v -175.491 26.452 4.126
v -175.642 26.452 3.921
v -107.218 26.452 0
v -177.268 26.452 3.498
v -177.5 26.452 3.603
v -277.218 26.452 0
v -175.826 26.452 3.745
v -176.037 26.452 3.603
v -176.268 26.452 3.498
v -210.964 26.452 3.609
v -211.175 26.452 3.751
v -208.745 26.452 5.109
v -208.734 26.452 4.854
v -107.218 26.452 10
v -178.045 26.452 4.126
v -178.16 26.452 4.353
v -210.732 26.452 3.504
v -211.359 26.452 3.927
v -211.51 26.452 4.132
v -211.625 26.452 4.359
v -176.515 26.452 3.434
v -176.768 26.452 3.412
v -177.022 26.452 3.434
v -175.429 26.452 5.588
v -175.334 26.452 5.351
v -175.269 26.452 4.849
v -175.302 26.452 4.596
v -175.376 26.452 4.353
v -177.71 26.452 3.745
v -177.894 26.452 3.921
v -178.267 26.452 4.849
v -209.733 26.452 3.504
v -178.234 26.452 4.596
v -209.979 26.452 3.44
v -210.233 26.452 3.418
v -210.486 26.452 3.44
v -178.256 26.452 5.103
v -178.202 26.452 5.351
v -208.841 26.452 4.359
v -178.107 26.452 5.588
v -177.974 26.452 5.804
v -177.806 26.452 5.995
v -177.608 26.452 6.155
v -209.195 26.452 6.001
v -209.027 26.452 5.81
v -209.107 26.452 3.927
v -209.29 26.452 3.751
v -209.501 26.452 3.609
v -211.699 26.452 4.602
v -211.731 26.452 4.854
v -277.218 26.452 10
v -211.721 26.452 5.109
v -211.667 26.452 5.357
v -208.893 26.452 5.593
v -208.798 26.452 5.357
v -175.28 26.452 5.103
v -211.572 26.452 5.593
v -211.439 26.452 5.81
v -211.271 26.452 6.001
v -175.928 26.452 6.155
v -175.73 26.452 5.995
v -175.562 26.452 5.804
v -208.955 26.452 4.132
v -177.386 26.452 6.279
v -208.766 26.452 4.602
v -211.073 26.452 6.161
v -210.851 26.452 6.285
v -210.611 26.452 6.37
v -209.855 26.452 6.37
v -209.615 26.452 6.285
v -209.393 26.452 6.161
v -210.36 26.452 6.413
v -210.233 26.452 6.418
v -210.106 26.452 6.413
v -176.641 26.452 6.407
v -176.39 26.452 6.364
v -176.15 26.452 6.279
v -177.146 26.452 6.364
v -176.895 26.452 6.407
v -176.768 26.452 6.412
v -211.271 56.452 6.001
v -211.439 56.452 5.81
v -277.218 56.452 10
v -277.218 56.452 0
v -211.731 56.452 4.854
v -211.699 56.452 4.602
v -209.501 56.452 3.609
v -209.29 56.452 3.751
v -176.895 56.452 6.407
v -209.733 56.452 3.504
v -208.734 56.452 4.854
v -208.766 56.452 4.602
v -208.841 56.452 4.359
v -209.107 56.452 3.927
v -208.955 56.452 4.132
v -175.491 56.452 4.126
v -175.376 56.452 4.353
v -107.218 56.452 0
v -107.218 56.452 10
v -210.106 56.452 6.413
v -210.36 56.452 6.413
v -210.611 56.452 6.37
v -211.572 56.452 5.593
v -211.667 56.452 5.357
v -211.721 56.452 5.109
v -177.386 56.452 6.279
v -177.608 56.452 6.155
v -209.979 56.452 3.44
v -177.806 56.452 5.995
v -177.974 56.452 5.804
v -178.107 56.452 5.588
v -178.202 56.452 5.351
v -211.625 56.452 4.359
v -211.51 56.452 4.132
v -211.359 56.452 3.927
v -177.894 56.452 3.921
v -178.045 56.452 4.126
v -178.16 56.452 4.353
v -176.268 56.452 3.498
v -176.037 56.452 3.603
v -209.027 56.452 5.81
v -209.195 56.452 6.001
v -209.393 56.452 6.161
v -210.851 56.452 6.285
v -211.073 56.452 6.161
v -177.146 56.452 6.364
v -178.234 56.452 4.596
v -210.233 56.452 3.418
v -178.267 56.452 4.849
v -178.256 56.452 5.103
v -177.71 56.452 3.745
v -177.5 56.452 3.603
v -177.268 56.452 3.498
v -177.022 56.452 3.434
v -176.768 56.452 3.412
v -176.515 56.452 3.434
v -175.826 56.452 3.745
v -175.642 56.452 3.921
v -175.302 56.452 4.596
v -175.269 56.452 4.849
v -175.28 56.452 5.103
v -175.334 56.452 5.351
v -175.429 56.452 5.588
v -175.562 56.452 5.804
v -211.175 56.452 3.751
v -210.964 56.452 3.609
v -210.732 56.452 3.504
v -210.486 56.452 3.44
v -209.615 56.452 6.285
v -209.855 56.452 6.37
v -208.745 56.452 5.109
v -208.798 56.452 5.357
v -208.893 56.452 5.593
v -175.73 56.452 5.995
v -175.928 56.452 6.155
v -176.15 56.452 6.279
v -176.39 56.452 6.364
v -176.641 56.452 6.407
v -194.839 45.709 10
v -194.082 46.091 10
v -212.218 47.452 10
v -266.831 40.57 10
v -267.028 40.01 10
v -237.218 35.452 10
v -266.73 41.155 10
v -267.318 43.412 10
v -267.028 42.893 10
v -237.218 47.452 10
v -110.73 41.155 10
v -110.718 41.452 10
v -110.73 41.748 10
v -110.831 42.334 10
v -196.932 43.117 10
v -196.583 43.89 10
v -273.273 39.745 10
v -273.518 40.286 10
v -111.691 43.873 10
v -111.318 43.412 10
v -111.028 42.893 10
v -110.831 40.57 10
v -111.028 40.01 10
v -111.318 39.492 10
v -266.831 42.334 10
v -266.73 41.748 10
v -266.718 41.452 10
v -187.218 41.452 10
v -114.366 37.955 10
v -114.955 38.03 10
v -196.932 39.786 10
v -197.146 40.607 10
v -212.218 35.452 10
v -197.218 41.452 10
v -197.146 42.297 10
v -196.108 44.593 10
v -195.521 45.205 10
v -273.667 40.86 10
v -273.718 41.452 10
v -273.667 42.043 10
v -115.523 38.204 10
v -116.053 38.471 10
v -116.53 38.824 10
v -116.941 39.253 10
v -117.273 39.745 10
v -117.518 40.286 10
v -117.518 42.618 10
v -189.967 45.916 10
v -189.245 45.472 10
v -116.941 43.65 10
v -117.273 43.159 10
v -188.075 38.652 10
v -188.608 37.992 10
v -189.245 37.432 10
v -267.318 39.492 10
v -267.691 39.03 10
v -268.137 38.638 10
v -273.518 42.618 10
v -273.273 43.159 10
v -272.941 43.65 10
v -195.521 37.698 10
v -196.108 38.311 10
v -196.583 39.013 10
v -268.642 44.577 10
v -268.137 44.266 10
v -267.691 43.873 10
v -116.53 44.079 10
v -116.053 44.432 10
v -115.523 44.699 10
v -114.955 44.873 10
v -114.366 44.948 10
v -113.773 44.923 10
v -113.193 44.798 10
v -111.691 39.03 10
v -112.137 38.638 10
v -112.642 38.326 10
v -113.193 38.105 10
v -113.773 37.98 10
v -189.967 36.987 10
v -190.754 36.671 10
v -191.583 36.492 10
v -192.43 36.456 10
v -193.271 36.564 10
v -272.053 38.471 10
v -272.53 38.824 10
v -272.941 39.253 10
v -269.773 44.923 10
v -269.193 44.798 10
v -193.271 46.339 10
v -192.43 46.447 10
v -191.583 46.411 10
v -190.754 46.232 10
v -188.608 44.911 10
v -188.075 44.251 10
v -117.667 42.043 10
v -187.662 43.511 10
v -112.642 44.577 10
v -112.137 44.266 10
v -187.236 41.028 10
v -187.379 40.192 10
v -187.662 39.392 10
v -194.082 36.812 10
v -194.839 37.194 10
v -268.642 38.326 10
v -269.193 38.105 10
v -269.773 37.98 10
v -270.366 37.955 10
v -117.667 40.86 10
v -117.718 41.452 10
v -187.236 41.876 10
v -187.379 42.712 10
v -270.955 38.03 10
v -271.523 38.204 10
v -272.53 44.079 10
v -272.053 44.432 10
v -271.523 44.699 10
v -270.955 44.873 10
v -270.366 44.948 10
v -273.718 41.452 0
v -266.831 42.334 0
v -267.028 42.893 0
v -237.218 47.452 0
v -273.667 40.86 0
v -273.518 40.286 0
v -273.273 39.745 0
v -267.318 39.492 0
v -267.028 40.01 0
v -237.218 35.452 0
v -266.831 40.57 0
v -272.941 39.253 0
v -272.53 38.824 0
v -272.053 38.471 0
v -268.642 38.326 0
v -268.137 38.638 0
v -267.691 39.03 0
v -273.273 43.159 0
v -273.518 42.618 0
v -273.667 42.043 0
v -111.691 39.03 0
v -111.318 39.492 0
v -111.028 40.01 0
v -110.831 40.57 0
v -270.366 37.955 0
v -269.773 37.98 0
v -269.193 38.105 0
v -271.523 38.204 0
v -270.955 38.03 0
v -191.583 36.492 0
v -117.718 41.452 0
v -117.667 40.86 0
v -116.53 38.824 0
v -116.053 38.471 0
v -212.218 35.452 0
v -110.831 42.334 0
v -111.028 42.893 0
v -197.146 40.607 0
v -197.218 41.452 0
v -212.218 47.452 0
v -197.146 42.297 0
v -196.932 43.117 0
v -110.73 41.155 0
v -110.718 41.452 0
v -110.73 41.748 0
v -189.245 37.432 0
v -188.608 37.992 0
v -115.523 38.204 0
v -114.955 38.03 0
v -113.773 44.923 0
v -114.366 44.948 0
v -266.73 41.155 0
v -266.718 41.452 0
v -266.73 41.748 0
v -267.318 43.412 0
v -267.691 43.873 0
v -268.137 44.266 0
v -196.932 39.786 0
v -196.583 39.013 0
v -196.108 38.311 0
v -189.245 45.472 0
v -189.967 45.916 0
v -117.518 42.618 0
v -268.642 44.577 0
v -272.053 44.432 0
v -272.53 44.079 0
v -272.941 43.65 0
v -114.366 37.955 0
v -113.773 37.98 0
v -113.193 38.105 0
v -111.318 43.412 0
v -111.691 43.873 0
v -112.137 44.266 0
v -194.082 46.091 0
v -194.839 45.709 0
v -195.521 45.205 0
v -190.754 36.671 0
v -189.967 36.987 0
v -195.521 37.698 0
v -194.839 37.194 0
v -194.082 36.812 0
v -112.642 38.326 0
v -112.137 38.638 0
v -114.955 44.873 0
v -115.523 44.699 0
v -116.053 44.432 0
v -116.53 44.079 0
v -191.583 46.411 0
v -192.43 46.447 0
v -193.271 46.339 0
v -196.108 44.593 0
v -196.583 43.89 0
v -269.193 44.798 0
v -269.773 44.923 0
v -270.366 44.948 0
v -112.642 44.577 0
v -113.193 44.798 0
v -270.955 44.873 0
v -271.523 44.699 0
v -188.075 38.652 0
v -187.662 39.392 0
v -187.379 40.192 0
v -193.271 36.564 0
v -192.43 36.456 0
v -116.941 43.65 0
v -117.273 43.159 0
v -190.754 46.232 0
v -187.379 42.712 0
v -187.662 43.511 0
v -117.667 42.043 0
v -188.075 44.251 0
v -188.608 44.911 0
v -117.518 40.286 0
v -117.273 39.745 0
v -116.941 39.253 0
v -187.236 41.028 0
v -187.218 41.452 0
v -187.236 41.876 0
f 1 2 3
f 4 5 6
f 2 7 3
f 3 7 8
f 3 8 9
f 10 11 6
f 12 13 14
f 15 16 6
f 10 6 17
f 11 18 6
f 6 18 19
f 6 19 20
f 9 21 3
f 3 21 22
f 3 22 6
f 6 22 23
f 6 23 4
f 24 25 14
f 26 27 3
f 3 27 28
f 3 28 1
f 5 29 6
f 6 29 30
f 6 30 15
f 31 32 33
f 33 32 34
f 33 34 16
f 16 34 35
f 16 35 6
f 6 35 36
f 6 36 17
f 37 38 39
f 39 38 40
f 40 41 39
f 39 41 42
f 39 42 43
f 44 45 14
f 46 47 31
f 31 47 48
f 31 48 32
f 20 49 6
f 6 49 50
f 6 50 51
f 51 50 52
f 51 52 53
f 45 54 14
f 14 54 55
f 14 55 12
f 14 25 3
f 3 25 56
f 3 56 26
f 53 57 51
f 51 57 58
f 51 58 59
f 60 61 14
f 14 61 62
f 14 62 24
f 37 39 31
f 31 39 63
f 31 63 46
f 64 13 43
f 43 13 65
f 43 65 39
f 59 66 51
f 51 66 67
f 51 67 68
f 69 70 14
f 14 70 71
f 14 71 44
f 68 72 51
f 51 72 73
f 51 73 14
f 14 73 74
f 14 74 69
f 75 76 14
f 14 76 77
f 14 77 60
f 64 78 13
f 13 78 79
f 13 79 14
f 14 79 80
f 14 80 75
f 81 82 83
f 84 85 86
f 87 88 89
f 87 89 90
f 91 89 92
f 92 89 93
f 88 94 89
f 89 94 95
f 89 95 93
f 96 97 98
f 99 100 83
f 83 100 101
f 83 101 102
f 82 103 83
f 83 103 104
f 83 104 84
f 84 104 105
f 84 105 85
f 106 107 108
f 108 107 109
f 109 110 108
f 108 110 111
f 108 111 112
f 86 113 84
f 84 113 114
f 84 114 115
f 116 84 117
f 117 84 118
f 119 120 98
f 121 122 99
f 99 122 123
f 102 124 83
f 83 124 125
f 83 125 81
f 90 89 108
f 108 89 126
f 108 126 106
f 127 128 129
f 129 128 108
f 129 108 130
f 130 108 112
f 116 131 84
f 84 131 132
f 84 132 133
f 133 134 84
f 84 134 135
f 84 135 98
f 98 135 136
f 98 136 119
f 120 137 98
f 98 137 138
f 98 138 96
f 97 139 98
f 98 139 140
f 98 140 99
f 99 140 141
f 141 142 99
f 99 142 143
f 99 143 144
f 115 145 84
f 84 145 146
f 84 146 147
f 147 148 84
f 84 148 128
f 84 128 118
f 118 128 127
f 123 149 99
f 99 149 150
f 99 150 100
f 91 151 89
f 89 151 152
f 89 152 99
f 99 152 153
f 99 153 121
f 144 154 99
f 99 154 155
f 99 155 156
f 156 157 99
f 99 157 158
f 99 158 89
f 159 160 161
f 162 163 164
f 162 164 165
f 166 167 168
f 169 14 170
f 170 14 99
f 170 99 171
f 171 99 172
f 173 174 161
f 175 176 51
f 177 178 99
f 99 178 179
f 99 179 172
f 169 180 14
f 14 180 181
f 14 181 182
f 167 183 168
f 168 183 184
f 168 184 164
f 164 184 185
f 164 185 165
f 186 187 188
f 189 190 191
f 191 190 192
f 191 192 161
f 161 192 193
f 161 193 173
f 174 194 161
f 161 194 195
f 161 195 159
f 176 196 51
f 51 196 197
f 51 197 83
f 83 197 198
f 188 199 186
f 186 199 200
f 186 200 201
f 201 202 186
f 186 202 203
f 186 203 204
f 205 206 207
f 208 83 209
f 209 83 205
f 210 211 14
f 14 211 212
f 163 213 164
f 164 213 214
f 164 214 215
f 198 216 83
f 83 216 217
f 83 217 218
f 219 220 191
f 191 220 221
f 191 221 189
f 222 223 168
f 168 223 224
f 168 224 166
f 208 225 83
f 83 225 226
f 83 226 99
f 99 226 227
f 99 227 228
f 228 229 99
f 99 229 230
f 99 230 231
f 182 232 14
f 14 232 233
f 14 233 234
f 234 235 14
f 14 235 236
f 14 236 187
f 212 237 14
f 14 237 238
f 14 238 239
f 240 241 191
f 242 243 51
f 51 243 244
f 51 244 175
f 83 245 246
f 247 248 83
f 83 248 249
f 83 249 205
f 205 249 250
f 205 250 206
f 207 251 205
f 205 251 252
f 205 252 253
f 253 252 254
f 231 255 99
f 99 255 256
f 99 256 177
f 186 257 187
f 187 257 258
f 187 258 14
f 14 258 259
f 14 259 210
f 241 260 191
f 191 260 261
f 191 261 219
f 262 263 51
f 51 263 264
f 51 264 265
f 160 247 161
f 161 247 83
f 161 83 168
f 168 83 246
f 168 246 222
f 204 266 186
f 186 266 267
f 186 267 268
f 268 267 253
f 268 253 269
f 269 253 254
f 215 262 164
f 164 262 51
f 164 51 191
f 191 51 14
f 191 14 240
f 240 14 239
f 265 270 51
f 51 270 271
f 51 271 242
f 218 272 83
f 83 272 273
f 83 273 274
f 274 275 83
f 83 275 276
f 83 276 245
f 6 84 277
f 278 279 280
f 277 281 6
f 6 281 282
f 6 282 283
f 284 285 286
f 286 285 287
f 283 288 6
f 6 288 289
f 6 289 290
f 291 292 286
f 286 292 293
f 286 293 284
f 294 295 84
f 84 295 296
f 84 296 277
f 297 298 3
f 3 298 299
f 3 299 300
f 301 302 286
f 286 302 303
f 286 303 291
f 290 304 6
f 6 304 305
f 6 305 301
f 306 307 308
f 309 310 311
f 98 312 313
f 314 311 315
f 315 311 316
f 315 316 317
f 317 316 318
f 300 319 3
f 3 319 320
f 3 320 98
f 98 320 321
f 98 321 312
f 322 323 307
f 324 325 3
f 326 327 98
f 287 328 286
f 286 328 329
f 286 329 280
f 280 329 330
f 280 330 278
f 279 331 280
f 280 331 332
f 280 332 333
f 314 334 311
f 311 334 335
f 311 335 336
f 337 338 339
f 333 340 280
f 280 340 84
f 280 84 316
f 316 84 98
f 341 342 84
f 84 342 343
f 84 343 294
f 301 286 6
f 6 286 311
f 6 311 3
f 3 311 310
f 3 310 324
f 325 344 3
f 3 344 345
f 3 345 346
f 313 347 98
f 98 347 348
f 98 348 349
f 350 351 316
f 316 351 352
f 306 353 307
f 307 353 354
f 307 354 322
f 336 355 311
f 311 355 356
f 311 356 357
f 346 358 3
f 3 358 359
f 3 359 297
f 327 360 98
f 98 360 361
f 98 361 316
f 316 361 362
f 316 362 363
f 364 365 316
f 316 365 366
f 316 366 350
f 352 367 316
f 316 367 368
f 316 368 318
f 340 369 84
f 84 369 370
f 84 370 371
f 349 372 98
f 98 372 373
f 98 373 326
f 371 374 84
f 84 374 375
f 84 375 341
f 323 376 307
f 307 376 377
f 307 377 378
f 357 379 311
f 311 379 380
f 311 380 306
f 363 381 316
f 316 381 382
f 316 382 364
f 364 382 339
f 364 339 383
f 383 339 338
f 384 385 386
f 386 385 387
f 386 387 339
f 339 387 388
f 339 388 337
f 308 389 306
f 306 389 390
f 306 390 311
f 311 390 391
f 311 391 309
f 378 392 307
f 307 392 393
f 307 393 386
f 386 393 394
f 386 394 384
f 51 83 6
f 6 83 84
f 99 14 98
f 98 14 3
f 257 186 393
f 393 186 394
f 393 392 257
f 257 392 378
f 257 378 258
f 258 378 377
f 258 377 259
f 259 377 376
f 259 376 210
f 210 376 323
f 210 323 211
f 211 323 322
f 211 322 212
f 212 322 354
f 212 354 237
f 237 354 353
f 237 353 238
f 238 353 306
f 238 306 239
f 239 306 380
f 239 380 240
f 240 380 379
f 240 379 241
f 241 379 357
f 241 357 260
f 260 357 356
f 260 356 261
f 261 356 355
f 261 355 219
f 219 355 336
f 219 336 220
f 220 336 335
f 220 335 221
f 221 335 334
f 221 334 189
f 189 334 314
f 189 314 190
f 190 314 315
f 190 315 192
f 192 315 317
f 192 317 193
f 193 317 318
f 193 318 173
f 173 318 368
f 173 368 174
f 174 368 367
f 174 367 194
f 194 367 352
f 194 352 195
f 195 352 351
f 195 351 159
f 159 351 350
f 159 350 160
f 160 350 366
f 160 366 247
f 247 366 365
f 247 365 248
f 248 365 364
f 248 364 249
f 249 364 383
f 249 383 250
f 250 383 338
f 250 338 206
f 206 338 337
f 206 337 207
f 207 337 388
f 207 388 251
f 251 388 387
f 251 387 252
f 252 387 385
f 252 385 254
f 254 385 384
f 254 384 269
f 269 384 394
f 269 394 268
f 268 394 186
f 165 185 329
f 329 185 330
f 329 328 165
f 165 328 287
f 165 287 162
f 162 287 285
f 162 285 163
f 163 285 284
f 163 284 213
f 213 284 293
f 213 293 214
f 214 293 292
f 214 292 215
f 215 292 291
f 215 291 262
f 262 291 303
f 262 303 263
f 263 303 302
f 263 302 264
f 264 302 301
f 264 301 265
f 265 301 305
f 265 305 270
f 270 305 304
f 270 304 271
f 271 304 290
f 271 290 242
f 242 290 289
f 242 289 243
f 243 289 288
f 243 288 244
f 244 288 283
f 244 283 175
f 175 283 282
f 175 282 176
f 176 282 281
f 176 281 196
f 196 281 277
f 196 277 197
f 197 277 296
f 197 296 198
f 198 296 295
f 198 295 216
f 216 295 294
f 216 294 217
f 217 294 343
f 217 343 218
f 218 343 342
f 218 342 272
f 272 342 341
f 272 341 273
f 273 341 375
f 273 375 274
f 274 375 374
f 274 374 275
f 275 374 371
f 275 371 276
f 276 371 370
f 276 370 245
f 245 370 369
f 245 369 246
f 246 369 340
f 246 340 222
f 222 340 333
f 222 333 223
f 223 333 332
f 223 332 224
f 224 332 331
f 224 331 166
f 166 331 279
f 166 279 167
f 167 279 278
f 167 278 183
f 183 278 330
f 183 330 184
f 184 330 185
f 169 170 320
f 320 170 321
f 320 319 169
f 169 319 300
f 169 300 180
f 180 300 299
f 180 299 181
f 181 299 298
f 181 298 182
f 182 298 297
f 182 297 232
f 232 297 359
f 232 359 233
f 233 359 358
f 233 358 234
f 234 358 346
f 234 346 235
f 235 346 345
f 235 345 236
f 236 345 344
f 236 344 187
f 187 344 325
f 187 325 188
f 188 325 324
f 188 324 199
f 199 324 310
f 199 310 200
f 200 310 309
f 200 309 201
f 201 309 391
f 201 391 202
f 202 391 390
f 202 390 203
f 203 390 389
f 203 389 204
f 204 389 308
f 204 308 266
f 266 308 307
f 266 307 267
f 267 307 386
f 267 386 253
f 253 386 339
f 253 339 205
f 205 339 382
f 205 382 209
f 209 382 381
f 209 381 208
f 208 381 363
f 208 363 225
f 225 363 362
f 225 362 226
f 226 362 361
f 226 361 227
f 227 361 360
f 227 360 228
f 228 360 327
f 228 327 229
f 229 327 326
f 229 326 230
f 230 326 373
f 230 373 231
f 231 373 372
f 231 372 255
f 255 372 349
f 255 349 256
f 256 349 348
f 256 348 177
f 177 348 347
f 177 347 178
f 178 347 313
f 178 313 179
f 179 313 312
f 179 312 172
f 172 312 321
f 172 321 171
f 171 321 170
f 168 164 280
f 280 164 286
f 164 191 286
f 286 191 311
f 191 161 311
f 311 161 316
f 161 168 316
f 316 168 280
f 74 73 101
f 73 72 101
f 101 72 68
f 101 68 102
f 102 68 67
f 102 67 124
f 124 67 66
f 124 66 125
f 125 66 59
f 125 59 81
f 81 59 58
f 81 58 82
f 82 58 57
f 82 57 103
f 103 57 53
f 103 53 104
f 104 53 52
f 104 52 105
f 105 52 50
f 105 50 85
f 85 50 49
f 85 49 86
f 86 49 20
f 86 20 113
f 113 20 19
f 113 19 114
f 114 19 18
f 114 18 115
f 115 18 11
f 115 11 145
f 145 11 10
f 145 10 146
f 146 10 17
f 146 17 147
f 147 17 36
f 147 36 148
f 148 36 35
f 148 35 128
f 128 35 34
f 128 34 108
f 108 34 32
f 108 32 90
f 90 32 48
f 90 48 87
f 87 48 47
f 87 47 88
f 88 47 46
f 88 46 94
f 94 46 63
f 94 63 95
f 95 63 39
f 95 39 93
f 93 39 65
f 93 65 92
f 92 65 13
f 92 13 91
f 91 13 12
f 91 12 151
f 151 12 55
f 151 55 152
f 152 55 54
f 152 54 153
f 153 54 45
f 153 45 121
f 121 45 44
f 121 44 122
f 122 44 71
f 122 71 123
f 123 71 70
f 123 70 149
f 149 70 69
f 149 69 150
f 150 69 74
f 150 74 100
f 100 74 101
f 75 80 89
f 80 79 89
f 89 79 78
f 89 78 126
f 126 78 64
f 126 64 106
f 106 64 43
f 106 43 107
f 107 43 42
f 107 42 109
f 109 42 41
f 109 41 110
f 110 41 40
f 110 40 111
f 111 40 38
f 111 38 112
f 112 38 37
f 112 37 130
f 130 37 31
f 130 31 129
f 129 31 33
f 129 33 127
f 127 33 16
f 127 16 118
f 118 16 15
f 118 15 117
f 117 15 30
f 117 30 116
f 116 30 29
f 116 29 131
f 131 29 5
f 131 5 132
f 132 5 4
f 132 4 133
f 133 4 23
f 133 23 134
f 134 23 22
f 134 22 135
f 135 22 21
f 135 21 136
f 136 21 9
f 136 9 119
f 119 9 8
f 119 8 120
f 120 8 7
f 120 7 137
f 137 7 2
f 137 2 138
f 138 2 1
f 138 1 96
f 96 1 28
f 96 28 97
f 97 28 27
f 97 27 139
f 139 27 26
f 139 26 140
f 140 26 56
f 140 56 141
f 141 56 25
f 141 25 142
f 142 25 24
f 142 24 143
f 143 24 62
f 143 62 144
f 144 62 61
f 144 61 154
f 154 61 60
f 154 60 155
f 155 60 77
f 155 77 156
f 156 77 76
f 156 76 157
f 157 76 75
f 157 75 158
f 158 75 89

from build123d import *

# Parameters (mm, degrees)
ESBO_O1_W                 = 170
ESBO_O1_H                 = 30
ESBO_O1_R                 = 5
ESBO_O1_R_2               = 3.5
ESBO_O1_W_2               = 25
ESBO_O1_H_2               = 12
RESSALTO_EXTRUS_O1_DEPTH  = 10
CORTE_EXTRUS_O1_START     = 26.451612903
CORTE_EXTRUS_O1_OUTLINE_R = 1.5
CORTE_EXTRUS_O1_DEPTH     = 30


# Read off the part's stored shape, not the designer's step: Corte-extrusão1
with BuildPart() as part:
    # Esboço1 → Ressalto-extrusão1 (new body)
    with BuildSketch(Plane.XY):
        with Locations((-192.217741935, 41.451612903)):
            Rectangle(ESBO_O1_W, ESBO_O1_H)
        with Locations((-192.217741935, 41.451612903)):
            Circle(ESBO_O1_R, mode=Mode.SUBTRACT)
        with Locations((-270.217741935, 41.451612903)):
            Circle(ESBO_O1_R_2, mode=Mode.SUBTRACT)
        with Locations((-114.217741935, 41.451612903)):
            Circle(ESBO_O1_R_2, mode=Mode.SUBTRACT)
        with Locations((-224.717741935, 41.451612903)):
            Rectangle(ESBO_O1_W_2, ESBO_O1_H_2, mode=Mode.SUBTRACT)
    extrude(amount=RESSALTO_EXTRUS_O1_DEPTH)

    # Corte-extrusão1 outline → Corte-extrusão1 (cut)
    with BuildSketch(Plane(origin=(0, 0, 0), x_dir=(1, 0, 0), z_dir=(0, 1, 0)).offset(CORTE_EXTRUS_O1_START)):
        with Locations((-210.23272287, -4.918113723)):
            Circle(CORTE_EXTRUS_O1_OUTLINE_R)
        with Locations((-176.768107745, -4.912217988)):
            Circle(CORTE_EXTRUS_O1_OUTLINE_R)
    extrude(amount=CORTE_EXTRUS_O1_DEPTH, mode=Mode.SUBTRACT)


solid = part.part
